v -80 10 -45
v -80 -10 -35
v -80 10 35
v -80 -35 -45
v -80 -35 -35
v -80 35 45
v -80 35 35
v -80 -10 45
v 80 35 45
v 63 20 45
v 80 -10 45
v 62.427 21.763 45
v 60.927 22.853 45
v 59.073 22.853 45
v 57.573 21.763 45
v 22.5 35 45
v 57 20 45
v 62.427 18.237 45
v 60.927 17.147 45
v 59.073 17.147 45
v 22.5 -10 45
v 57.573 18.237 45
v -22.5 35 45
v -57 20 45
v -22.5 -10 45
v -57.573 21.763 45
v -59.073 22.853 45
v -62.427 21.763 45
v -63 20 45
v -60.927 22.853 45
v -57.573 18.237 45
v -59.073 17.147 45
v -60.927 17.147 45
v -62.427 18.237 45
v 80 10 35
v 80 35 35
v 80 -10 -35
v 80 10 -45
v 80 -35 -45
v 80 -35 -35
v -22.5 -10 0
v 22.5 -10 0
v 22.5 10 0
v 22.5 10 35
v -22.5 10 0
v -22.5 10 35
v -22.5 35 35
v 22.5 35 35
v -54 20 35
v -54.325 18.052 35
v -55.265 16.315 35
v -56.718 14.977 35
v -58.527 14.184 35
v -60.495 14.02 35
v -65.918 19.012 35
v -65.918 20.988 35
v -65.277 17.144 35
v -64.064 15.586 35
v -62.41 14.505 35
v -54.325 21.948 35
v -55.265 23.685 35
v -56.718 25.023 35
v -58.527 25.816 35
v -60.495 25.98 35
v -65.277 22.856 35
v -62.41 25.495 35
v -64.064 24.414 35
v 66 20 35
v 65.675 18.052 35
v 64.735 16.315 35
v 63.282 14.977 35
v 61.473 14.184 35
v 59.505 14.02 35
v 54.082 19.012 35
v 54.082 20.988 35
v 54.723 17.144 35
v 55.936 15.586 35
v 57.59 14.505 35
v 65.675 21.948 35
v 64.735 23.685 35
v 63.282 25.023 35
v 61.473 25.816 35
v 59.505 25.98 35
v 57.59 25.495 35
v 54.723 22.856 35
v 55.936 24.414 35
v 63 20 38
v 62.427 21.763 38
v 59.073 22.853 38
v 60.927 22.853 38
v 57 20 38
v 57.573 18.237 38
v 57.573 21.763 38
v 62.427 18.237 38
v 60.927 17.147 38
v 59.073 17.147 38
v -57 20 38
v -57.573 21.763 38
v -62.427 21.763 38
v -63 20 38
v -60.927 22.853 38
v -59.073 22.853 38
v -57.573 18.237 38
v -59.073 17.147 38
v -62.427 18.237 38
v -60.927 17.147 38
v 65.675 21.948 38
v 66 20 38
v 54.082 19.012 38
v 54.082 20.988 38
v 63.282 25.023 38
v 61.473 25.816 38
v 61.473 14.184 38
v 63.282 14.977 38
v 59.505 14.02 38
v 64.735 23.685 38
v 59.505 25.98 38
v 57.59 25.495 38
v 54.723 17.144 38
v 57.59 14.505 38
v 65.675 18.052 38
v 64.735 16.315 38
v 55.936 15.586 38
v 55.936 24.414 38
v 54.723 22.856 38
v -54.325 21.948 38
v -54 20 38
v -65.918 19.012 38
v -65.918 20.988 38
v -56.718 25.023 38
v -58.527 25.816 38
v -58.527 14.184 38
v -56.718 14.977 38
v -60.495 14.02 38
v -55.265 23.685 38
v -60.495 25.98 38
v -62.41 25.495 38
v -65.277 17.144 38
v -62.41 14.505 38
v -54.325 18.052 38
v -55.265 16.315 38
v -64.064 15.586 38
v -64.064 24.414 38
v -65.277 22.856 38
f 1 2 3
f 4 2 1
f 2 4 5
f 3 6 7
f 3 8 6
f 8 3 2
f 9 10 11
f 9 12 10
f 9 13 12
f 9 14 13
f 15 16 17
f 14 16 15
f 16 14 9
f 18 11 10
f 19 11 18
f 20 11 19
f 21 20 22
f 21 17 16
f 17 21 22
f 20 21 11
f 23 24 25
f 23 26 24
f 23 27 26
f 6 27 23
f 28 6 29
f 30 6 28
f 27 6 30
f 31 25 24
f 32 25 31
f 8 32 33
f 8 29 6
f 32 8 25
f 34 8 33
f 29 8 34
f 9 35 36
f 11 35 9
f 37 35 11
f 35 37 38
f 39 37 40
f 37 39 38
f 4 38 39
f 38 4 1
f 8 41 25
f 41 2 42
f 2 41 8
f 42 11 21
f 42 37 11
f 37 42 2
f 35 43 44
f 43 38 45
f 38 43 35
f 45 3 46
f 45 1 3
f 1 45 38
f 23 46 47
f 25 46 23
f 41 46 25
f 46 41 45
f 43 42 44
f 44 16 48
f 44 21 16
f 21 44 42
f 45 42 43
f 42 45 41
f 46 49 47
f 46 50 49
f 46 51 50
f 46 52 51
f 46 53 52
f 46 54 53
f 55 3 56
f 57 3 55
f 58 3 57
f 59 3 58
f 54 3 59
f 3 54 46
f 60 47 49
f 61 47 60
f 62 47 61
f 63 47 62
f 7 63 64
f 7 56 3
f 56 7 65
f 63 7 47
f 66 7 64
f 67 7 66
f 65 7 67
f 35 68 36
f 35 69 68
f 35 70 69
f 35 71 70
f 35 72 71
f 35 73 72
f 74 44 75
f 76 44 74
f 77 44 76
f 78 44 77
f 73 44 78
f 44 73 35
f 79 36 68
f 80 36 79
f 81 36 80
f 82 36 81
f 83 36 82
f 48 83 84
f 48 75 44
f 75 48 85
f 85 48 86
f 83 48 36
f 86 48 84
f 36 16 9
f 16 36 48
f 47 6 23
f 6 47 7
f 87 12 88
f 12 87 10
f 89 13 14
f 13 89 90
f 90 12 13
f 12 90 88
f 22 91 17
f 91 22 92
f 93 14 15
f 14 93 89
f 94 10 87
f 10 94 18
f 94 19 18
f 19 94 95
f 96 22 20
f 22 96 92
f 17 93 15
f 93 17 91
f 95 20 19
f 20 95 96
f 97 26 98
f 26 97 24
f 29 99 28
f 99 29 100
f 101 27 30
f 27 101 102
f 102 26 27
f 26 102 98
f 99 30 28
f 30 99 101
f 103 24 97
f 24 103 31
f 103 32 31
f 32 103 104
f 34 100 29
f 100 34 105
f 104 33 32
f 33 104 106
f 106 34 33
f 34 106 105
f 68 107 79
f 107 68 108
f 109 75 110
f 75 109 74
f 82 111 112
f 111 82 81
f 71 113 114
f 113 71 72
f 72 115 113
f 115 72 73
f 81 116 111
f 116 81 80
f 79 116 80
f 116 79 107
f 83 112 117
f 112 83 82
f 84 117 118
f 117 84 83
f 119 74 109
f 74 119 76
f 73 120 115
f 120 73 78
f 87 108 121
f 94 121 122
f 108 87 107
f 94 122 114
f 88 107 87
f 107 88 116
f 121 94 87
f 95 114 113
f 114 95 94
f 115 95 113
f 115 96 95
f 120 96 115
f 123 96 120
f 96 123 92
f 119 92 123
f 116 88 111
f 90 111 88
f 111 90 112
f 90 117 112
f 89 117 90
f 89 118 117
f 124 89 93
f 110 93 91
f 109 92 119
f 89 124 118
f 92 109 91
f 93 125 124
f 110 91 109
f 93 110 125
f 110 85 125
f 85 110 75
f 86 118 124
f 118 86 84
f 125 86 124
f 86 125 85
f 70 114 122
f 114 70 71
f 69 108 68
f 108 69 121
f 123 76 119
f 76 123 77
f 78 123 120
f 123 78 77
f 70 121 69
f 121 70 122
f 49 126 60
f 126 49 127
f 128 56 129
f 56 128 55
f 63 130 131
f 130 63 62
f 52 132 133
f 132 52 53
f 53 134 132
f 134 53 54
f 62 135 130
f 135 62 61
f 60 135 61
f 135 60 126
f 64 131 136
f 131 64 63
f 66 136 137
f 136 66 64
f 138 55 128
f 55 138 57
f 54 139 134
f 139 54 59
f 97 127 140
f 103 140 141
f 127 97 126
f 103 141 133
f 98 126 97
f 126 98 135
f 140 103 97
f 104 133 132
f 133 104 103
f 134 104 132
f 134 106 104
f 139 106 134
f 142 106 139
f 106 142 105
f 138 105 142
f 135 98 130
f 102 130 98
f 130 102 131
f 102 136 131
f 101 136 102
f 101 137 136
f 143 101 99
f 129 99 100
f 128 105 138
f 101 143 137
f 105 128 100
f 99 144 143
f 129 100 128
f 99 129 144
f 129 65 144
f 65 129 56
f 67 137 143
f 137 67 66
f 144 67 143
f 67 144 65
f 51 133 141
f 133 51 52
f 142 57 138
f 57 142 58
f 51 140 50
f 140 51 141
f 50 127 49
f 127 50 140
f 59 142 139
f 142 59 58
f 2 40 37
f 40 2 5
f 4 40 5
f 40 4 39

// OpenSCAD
// Tastaturhalterung


difference(){
    cube([160,20,90],true);
    translate([0,0,45/2])
    cube([45,21,45],true);
}



translate([0,-20,-90/2+5])
difference() {
    cube([160,30,10],true);
}

translate([0,20,90/2-5])
difference() {
    cube([160,30,10],true);
    cylinder(h=50,d=6,center=true);
    translate([60,0,0])
    cylinder(h=50,d=6,center=true);
    translate([-60,0,0])
    cylinder(h=50,d=6,center=true);

    translate([60,0,-4])
    cylinder(h=4,d=12,center=true);
    translate([-60,0,-4])
    cylinder(h=4,d=12,center=true);

    translate([0,0,0])
    cube([45,60,45],true);

}
